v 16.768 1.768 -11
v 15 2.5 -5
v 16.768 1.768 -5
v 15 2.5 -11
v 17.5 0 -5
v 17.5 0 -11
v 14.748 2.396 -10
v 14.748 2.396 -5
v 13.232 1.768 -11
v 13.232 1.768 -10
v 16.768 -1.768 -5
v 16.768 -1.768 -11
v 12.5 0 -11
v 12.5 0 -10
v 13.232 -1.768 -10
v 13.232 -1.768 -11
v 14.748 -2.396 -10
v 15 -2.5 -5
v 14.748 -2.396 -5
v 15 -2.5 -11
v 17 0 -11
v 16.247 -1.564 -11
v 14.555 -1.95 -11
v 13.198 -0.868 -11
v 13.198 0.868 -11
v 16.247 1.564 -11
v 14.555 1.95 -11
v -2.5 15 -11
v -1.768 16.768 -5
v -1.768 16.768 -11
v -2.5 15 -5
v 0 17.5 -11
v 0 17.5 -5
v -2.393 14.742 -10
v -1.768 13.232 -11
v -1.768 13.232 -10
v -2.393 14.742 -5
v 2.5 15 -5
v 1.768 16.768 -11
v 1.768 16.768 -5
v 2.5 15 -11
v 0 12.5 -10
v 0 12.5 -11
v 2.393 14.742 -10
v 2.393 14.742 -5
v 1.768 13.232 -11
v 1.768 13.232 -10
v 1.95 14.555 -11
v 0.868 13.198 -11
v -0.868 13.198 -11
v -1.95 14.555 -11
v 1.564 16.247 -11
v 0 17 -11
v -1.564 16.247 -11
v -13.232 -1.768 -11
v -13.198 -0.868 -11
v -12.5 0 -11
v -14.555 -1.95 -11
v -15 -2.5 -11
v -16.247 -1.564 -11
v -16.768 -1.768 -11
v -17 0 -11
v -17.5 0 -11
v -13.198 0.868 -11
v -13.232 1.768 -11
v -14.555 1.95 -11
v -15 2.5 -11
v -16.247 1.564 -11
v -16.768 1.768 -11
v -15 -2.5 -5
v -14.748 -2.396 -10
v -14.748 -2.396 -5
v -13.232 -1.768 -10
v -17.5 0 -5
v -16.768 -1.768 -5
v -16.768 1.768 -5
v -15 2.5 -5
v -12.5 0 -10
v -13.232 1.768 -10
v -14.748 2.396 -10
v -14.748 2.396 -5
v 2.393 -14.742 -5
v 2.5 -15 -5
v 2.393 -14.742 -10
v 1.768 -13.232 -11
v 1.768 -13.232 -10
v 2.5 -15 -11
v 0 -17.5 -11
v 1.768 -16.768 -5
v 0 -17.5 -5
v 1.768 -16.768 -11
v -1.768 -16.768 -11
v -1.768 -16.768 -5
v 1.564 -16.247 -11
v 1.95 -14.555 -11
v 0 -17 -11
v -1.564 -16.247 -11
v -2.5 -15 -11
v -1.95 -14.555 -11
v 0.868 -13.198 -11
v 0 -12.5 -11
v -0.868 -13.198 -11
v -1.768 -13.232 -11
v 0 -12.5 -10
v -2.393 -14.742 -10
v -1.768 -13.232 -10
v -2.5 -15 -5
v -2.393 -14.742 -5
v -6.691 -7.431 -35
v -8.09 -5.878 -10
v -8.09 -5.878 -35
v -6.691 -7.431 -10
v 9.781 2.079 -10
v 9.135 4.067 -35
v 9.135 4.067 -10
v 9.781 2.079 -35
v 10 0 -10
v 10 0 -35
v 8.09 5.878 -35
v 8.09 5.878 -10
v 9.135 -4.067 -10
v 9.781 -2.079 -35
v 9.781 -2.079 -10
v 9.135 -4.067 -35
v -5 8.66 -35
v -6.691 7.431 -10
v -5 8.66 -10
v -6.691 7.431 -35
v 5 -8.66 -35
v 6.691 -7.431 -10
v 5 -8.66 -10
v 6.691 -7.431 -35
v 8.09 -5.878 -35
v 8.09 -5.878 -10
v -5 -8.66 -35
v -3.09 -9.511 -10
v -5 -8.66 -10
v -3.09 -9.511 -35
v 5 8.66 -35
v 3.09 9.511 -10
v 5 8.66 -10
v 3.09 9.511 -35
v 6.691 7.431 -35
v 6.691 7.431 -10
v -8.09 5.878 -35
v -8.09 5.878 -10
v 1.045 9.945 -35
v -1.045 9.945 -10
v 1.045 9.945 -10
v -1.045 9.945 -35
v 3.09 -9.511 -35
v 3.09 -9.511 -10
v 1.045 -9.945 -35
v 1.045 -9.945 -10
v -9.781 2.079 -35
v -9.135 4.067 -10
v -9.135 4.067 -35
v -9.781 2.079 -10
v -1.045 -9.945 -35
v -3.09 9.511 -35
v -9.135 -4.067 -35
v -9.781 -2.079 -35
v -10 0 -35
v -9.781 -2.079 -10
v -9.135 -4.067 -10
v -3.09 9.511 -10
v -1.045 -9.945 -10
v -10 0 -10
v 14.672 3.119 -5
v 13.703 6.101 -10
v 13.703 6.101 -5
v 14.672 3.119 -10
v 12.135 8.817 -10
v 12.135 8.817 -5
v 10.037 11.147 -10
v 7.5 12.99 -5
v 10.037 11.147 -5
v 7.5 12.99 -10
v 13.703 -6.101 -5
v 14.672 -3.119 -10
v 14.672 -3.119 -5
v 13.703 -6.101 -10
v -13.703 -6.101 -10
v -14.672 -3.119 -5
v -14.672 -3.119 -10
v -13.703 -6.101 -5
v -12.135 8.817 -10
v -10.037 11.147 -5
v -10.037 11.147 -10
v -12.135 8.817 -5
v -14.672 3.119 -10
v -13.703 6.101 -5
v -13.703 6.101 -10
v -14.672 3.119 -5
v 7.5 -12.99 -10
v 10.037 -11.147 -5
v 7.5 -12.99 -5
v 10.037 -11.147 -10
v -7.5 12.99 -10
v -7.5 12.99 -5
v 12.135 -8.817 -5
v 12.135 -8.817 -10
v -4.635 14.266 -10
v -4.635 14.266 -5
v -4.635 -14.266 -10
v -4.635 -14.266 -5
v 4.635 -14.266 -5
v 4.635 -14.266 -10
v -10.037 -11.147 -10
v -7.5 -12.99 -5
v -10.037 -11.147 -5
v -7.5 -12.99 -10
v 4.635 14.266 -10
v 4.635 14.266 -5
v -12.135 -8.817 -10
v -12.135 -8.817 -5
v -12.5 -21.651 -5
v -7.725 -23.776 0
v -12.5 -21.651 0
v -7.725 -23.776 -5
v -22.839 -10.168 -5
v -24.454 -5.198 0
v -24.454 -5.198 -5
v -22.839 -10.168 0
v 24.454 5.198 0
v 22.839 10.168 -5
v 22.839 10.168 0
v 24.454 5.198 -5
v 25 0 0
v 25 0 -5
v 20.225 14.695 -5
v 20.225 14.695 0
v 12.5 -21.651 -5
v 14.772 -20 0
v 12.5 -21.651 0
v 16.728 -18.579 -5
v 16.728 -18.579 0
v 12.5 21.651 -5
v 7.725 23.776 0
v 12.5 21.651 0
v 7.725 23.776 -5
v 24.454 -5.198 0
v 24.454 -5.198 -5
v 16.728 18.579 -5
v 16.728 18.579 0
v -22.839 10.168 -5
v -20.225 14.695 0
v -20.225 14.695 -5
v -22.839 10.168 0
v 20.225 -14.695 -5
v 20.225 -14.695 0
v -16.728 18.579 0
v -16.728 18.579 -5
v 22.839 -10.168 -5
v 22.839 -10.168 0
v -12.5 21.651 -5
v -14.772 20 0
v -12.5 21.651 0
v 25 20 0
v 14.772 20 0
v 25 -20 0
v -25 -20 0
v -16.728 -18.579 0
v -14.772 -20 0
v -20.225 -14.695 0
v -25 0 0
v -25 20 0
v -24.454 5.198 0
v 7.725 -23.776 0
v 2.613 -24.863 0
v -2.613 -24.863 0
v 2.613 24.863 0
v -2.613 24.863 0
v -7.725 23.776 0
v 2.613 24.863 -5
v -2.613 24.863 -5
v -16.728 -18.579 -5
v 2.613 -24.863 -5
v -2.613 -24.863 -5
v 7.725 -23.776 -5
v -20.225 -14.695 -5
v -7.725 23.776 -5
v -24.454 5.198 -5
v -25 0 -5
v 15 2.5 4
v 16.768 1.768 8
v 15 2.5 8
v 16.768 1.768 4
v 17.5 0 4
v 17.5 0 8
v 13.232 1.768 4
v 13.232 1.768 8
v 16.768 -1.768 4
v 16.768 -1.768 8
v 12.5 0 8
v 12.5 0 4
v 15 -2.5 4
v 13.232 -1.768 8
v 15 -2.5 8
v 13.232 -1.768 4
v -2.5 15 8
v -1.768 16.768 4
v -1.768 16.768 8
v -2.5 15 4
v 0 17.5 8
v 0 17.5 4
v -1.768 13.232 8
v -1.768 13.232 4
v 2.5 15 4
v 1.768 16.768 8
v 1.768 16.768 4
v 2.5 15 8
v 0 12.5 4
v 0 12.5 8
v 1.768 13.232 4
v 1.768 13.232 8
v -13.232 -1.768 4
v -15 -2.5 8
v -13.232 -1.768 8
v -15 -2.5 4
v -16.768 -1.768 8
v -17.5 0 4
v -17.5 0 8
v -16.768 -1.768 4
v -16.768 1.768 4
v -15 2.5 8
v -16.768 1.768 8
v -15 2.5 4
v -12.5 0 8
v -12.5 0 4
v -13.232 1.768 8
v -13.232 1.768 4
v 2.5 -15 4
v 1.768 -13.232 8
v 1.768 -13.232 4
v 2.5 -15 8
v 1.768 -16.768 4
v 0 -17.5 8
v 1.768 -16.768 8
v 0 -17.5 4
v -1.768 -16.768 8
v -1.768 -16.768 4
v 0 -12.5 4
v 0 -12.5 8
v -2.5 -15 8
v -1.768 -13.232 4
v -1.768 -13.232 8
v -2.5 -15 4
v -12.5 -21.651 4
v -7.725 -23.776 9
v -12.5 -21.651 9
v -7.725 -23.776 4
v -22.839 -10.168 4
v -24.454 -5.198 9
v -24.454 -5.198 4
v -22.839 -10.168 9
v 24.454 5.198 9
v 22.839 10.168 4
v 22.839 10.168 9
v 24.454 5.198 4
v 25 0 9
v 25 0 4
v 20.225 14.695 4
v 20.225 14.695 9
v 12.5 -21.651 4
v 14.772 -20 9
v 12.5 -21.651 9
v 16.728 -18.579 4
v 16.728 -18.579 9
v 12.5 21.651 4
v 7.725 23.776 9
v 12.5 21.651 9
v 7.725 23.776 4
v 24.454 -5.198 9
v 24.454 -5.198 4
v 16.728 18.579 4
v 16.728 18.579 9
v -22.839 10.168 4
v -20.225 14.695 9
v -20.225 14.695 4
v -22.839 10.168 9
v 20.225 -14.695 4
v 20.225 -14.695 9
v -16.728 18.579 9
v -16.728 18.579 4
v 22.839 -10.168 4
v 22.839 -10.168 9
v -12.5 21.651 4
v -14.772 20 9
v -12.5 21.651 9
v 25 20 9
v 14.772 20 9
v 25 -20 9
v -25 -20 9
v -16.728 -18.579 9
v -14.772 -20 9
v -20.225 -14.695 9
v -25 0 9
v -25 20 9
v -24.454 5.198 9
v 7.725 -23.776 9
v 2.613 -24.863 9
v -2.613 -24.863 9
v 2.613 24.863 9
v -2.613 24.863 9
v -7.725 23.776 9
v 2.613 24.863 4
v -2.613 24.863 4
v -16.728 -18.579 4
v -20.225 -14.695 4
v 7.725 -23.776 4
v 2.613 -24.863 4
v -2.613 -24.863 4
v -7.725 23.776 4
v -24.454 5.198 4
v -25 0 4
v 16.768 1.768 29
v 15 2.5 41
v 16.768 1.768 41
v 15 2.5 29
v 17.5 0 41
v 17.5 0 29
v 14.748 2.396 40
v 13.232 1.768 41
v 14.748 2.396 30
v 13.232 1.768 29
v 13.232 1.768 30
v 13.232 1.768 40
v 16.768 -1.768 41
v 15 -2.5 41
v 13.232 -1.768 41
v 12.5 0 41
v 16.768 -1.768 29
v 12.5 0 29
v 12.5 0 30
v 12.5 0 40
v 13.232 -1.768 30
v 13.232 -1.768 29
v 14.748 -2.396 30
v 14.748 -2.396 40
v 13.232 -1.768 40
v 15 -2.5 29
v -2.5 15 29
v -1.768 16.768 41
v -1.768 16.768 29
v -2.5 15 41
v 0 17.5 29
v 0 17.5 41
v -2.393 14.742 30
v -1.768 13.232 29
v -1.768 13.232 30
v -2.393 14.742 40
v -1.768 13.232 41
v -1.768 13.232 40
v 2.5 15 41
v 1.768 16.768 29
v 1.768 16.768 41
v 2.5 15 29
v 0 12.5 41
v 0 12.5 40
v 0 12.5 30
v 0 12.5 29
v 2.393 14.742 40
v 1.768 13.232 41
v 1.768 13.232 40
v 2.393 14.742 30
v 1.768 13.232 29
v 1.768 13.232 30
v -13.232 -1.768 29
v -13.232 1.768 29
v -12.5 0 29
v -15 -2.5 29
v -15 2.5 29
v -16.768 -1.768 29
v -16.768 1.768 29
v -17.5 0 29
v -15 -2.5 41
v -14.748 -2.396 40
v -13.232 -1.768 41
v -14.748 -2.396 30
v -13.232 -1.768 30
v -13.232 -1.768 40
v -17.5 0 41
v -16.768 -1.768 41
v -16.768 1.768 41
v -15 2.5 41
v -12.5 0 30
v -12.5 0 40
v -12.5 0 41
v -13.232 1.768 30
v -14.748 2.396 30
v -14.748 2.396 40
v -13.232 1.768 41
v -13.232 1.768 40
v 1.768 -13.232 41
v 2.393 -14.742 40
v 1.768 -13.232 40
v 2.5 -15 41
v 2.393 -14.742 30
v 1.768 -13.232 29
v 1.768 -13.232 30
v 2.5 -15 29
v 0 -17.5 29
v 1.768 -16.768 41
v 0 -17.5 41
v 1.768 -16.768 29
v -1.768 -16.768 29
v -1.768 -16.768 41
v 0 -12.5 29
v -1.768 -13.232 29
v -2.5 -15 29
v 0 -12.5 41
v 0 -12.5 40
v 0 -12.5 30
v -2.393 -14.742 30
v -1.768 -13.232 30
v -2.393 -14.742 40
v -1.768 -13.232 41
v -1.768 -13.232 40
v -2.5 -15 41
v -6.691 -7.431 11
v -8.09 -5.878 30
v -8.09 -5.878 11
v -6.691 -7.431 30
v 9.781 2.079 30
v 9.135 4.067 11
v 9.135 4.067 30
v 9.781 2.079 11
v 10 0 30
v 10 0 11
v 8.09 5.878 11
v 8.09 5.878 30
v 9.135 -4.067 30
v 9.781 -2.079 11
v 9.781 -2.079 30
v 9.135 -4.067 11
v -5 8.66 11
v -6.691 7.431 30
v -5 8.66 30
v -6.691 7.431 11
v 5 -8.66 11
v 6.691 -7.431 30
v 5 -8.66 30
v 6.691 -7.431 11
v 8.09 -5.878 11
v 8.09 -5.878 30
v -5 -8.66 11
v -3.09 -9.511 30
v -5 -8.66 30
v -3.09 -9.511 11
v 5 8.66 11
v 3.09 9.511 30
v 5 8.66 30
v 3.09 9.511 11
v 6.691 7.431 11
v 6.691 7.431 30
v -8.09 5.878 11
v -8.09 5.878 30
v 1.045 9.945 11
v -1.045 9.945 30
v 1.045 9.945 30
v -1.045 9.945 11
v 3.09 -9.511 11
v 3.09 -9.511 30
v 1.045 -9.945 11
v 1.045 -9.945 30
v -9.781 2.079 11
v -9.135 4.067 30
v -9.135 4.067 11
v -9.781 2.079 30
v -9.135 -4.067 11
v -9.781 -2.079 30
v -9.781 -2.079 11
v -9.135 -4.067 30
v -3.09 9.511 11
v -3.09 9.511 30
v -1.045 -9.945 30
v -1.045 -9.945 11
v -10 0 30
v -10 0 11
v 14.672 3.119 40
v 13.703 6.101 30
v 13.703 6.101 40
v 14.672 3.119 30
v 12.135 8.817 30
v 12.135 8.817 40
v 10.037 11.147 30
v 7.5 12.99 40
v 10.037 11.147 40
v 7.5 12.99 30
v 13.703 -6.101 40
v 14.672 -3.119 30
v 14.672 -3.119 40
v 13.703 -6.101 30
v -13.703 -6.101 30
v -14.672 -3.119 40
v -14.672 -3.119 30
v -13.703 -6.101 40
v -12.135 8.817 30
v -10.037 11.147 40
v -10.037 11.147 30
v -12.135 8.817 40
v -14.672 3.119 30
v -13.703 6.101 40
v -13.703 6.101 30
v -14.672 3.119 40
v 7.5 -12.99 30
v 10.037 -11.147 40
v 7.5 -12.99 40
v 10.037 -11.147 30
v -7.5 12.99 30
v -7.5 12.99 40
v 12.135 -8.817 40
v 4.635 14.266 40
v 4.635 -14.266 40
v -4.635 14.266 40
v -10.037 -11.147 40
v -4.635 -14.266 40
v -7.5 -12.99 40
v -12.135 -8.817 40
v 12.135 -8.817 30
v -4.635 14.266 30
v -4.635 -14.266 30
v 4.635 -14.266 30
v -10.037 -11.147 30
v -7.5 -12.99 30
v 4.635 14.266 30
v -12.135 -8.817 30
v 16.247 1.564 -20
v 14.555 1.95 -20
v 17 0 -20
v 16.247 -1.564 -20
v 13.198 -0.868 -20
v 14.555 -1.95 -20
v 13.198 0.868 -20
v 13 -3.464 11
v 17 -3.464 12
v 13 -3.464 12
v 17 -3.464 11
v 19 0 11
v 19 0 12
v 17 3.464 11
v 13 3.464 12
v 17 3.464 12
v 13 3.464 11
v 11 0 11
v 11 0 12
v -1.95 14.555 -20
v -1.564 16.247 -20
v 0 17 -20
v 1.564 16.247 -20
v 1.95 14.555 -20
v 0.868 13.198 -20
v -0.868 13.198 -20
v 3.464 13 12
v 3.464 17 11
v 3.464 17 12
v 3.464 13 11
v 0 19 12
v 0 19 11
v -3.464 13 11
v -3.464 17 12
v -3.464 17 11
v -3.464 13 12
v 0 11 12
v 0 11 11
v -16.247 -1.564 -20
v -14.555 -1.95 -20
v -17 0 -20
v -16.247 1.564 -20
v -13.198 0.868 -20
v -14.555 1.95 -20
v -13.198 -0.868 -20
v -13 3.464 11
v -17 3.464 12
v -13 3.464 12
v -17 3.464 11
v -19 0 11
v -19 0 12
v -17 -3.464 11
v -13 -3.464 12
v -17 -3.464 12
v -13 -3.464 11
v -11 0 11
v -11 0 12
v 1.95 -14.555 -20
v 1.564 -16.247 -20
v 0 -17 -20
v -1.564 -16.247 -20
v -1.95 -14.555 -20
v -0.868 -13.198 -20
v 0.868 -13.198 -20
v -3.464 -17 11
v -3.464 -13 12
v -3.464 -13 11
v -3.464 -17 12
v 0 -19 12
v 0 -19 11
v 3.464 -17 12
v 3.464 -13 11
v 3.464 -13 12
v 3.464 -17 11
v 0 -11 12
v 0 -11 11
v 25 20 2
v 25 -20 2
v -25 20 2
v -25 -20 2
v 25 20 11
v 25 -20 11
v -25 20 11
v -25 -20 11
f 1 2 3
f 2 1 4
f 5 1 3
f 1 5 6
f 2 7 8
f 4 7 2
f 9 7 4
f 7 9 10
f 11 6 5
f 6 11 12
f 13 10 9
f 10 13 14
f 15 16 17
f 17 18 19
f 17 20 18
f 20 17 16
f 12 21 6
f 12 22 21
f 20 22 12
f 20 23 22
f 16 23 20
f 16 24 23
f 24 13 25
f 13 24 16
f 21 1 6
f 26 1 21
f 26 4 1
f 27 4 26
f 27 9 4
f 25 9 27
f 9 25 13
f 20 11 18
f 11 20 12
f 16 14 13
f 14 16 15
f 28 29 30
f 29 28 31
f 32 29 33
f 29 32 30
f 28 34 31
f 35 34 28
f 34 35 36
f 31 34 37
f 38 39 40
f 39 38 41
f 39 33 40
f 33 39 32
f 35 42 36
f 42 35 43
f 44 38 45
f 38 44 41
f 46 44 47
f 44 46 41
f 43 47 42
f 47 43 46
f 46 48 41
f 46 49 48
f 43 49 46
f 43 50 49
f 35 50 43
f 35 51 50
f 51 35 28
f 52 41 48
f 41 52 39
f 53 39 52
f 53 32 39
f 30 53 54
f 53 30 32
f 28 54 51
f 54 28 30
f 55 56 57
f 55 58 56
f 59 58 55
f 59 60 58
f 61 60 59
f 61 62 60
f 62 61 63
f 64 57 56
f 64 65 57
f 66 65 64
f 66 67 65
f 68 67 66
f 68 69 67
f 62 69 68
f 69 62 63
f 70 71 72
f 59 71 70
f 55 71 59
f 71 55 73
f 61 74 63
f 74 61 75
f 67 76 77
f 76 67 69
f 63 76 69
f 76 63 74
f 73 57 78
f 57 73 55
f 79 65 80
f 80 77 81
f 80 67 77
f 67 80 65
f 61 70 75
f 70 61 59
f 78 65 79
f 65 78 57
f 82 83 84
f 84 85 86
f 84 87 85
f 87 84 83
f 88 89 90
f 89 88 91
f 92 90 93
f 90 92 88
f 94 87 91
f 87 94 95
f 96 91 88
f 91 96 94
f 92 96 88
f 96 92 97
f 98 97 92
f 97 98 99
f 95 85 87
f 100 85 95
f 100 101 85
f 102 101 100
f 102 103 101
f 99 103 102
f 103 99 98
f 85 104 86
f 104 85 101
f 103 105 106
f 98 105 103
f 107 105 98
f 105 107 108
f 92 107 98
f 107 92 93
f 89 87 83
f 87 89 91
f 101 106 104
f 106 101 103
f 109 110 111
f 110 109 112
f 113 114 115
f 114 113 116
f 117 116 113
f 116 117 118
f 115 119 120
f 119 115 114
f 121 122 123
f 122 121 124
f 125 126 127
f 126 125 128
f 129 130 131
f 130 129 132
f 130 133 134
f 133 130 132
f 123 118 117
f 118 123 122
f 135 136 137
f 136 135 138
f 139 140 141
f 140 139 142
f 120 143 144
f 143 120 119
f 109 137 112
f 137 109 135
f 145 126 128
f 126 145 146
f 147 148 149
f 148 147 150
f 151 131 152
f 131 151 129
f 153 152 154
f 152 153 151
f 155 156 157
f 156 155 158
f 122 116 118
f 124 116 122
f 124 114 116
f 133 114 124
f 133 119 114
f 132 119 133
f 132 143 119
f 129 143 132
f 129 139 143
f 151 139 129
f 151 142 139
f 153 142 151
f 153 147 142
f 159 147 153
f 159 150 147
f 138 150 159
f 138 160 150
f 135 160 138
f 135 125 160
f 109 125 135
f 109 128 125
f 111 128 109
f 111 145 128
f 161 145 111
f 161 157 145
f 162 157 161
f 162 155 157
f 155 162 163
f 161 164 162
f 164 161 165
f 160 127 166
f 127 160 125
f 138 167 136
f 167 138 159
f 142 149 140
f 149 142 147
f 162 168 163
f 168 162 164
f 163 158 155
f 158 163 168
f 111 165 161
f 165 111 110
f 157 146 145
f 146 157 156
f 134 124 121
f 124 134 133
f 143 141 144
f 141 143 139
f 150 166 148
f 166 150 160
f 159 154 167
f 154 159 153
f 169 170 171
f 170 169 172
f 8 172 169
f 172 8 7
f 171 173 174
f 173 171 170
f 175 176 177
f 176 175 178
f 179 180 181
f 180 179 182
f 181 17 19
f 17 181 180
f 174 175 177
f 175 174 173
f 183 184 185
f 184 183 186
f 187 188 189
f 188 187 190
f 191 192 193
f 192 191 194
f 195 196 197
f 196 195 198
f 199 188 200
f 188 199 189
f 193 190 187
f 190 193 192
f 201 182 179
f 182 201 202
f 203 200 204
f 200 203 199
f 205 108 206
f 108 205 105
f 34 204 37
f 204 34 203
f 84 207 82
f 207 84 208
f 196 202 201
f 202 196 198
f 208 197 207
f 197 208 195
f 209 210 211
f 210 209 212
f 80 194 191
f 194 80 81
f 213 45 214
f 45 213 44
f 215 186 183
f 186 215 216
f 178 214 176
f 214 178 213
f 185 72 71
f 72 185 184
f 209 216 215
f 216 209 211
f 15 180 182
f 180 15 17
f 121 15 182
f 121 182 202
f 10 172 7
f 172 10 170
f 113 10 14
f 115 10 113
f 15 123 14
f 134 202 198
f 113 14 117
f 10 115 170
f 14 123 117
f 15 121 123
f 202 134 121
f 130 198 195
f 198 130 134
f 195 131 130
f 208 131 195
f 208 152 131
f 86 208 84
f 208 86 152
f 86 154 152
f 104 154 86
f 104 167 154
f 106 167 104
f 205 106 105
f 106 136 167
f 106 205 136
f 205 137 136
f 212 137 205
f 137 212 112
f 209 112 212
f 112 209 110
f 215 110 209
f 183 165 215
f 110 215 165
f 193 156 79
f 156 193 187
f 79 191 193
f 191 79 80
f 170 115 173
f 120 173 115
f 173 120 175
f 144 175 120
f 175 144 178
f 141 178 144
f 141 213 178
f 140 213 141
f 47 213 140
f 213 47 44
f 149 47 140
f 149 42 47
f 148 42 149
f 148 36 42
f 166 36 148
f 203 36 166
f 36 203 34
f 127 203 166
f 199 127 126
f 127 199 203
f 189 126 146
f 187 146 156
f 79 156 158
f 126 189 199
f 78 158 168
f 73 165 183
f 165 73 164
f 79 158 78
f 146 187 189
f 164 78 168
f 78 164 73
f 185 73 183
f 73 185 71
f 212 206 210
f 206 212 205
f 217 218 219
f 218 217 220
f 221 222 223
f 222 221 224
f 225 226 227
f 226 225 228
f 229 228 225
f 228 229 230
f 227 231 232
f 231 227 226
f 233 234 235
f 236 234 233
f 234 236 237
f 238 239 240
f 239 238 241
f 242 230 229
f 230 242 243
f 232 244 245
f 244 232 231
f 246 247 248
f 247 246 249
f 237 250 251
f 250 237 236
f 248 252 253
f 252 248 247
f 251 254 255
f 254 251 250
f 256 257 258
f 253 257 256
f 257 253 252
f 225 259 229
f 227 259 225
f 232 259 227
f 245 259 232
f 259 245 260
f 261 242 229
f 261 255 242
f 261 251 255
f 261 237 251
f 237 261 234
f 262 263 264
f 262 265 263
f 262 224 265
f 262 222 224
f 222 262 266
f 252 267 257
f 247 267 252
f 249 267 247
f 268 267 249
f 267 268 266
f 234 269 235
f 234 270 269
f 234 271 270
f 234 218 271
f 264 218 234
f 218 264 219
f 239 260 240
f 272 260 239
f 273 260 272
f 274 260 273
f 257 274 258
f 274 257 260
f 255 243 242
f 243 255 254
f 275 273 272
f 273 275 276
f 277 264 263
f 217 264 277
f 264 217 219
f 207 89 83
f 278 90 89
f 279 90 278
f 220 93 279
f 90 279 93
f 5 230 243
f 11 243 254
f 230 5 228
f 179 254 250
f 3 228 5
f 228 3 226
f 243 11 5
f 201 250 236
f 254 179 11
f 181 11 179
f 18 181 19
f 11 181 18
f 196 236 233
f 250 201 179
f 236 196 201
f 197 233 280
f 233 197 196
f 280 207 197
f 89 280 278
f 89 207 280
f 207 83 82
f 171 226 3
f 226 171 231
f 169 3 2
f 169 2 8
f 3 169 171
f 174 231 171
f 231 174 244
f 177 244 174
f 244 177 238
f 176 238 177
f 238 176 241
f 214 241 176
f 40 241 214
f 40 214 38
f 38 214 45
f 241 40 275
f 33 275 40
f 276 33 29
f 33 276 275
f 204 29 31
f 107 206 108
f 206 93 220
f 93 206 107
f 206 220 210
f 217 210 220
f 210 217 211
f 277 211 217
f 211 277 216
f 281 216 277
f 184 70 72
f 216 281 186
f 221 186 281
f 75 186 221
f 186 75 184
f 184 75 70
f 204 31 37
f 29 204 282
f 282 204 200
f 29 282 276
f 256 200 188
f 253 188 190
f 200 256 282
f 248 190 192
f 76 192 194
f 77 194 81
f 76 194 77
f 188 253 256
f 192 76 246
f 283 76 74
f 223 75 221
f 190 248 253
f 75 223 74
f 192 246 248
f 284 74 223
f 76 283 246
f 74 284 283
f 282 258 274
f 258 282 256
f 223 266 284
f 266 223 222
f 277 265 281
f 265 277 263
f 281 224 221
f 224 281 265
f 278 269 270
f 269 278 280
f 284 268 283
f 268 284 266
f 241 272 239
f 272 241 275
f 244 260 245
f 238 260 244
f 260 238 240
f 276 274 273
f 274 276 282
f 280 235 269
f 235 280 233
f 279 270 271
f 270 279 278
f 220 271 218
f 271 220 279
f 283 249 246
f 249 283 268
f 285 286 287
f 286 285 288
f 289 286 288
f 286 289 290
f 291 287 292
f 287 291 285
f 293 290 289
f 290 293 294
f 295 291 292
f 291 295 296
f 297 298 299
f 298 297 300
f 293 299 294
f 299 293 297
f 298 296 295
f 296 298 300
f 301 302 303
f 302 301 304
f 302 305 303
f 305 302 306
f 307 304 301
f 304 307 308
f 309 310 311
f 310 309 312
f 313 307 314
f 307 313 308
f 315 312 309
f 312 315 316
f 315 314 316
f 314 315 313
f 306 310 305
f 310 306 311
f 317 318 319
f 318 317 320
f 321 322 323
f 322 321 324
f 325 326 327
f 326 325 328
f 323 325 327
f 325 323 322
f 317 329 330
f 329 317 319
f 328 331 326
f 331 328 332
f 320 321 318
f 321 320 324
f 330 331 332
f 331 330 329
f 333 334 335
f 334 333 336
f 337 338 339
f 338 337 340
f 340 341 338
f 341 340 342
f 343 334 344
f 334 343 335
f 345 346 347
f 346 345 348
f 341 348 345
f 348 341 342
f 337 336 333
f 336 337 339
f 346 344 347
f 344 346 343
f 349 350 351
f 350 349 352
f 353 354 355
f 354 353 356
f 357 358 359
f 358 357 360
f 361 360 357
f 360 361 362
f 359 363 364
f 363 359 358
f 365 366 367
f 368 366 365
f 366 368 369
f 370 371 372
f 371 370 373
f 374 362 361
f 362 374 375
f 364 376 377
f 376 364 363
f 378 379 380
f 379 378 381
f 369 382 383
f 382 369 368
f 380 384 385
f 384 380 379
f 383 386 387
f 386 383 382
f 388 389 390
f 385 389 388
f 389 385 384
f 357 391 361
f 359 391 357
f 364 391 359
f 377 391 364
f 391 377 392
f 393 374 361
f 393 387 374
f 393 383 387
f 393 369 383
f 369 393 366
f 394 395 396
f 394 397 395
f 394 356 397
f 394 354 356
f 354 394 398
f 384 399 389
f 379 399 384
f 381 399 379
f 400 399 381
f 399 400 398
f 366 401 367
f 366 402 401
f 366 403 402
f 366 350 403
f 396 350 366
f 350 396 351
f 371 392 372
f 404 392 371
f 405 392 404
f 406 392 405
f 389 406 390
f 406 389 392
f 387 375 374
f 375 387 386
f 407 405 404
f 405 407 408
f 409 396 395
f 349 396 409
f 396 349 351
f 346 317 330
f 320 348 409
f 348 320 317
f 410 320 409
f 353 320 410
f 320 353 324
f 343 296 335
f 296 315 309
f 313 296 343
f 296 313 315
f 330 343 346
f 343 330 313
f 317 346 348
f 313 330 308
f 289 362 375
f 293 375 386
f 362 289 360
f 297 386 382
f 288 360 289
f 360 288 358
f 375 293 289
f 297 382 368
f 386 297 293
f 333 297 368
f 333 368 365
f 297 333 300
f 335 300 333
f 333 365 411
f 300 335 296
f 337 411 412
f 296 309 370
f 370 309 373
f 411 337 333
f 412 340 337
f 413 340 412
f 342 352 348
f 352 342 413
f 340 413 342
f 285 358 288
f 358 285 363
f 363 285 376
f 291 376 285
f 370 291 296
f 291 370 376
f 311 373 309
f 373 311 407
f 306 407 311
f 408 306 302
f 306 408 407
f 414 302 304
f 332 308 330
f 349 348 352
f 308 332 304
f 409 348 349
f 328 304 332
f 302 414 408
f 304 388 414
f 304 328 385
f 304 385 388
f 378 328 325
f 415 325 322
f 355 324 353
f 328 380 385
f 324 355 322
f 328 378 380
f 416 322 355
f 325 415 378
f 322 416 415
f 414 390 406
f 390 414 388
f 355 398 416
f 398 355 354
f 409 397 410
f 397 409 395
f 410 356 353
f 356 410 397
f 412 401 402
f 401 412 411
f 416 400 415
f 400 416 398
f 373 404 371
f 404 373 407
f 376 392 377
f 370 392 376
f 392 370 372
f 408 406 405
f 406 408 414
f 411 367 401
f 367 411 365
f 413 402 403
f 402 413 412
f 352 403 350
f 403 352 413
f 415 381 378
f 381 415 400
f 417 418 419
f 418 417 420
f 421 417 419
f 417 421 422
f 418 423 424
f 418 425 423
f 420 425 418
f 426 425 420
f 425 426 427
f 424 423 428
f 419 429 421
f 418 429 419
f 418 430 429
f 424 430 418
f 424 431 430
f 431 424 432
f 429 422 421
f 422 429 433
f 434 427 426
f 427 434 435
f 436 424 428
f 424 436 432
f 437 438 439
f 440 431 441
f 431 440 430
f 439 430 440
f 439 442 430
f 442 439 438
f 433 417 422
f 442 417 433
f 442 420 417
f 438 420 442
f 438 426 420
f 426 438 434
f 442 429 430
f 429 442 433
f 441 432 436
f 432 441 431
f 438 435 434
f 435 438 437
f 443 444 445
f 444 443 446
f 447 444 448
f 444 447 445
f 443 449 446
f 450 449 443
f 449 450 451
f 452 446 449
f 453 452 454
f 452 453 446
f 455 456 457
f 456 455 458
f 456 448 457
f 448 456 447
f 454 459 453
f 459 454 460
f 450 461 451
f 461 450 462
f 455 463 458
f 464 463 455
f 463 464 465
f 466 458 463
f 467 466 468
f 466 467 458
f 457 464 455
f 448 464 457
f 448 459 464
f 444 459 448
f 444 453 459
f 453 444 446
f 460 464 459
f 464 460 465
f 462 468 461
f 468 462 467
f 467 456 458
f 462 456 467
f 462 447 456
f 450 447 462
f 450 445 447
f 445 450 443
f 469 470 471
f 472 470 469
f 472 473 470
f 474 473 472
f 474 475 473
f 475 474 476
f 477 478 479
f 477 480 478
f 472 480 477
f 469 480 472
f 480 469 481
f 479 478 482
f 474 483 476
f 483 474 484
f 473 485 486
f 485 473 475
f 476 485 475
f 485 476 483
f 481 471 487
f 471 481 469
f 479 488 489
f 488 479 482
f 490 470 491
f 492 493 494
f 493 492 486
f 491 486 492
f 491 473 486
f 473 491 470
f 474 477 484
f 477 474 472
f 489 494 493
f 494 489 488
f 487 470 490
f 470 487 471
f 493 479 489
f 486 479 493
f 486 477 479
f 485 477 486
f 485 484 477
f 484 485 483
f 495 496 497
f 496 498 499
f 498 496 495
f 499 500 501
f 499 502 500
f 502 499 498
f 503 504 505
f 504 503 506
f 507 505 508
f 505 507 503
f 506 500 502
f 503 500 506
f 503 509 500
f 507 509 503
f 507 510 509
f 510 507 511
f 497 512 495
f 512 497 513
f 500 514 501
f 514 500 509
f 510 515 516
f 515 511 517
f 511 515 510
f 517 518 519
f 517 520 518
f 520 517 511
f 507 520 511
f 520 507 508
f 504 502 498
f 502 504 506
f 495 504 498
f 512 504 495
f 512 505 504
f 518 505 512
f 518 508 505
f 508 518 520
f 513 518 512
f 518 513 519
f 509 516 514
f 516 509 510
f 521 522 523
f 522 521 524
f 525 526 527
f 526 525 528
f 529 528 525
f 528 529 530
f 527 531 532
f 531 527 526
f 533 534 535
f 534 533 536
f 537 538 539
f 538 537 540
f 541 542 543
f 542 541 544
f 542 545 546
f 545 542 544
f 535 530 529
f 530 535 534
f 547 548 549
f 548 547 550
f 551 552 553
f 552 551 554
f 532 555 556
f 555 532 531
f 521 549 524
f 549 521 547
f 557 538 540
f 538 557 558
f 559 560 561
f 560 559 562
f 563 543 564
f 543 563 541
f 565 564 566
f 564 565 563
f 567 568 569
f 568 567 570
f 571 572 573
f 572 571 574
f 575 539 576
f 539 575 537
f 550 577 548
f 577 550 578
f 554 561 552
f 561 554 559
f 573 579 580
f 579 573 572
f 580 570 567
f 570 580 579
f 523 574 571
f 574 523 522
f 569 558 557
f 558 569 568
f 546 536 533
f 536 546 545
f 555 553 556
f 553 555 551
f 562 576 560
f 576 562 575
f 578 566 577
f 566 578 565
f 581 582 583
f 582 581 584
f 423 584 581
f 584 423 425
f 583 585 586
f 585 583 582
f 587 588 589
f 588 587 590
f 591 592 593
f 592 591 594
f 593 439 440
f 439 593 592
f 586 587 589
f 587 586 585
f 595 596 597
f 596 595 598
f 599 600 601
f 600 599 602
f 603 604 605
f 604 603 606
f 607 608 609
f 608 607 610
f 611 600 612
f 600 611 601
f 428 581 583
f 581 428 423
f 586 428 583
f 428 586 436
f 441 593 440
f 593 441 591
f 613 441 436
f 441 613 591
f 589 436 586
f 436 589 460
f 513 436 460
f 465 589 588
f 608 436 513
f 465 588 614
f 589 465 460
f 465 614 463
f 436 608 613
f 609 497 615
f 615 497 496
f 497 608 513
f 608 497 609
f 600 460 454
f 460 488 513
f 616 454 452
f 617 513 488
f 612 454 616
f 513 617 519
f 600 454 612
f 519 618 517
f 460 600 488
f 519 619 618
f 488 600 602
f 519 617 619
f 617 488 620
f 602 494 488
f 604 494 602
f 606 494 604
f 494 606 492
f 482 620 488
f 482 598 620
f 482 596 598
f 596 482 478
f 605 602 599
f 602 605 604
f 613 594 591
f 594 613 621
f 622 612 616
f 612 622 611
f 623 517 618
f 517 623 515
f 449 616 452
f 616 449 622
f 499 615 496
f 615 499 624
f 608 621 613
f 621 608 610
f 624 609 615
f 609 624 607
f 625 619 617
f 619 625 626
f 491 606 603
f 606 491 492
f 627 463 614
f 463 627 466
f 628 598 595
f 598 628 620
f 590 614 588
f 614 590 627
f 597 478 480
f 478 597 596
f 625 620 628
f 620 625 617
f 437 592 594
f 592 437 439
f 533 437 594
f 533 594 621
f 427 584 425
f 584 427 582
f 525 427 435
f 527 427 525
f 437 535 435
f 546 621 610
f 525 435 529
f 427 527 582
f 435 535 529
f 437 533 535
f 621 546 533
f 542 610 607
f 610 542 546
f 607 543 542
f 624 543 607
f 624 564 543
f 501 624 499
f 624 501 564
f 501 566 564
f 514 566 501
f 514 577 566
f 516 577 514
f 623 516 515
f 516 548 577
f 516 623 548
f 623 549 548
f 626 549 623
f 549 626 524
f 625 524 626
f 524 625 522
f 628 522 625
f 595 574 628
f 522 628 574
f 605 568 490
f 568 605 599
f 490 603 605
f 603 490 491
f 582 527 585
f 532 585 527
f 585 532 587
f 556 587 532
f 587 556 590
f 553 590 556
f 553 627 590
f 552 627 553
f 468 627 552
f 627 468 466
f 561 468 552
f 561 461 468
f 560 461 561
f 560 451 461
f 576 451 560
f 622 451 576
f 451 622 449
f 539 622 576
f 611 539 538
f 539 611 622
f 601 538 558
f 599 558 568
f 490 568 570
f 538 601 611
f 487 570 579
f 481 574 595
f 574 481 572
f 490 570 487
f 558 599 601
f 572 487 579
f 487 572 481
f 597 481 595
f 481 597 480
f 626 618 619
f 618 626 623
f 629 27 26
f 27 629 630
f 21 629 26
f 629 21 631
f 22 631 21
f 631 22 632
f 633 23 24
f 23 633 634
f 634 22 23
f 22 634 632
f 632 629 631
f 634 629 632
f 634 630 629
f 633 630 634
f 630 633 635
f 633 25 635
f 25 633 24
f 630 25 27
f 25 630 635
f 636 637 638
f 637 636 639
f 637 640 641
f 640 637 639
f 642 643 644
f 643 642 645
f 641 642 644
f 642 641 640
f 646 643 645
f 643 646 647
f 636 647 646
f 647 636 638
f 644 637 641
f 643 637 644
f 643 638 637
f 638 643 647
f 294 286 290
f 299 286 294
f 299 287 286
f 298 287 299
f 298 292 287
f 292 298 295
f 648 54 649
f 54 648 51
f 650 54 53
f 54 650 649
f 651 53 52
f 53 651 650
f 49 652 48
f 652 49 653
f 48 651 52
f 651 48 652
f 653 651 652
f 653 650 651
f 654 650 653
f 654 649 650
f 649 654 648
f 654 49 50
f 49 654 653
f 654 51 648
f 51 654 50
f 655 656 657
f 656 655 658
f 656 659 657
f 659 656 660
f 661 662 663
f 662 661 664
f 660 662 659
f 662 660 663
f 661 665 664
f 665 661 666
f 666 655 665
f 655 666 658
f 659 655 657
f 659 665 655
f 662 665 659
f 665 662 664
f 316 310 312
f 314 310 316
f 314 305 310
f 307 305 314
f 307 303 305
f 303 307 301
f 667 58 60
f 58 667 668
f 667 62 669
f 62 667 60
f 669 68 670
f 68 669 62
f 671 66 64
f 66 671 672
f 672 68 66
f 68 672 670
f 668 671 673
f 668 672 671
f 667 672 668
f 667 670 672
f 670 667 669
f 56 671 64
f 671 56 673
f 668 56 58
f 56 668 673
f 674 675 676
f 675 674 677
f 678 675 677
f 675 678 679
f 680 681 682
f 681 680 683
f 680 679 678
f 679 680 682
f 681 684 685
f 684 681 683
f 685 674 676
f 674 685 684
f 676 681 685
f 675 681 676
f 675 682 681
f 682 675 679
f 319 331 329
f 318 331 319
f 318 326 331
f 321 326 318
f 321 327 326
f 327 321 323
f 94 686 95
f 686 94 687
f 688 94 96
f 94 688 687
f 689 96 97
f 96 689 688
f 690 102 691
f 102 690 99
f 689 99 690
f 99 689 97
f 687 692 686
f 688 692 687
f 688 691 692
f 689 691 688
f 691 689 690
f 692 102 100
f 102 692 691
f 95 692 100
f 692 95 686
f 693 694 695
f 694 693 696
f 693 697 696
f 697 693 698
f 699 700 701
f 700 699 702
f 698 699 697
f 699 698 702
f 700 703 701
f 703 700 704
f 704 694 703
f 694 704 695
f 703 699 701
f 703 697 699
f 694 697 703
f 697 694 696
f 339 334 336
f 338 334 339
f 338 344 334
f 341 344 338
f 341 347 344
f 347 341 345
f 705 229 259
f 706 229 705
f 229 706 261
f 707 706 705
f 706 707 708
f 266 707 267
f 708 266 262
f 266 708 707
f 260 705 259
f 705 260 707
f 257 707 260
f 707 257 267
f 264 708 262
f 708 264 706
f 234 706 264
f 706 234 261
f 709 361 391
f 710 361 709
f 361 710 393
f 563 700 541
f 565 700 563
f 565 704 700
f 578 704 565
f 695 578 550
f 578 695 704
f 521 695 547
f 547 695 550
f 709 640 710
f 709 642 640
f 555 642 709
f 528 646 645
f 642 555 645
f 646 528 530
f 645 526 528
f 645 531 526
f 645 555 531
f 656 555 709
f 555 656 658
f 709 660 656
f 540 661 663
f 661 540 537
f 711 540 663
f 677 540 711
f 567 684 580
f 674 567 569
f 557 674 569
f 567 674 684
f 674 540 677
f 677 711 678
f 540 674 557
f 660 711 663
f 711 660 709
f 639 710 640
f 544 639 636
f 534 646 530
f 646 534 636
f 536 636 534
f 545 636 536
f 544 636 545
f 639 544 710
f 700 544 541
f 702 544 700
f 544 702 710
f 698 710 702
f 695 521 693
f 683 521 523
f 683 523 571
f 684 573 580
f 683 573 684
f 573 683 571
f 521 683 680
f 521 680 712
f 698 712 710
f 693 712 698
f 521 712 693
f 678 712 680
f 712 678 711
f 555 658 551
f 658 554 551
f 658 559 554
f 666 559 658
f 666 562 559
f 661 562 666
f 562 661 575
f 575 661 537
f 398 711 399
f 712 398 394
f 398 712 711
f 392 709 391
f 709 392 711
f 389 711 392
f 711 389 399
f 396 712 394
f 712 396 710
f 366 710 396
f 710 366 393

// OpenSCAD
// Parameters
shaft_diameter = 20;
shaft_length = 30; // Shortened shaft length
shaft_larger_diameter = 30; // Larger diameter section for mounting
shaft_larger_length = 10; // Length of larger diameter section
flange_diameter = 50; // Circular flange diameter
flange_thickness = 5;
bolt_hole_diameter = 5;
bolt_diameter = 4;
bolt_length = 20;
nut_diameter = 8;
nut_thickness = 4;
flexible_element_thickness = 2;
flexible_element_width = 40;
flexible_element_length = 50;
bolt_spacing = 30;

// Module for shaft
module shaft() {
    union() {
        // Main shaft
        cylinder(h = shaft_length, d = shaft_diameter, center = true);
        // Larger diameter section
        translate([0, 0, shaft_length / 2])
            cylinder(h = shaft_larger_length, d = shaft_larger_diameter, center = true);
        // Bolt holes in larger diameter section
        for (i = [0:3]) {
            rotate([0, 0, i * 90])
                translate([bolt_spacing / 2, 0, shaft_length / 2])
                cylinder(h = shaft_larger_length + 2, d = bolt_hole_diameter, center = true);
        }
    }
}

// Module for flange plate
module flange_plate() {
    difference() {
        cylinder(h = flange_thickness, d = flange_diameter, center = true);
        for (i = [0:3]) {
            rotate([0, 0, i * 90])
                translate([bolt_spacing / 2, 0, 0])
                cylinder(h = flange_thickness + 2, d = bolt_hole_diameter, center = true);
        }
    }
}

// Module for flexible element
module flexible_element() {
    translate([0, 0, -flexible_element_thickness / 2])
        cube([flexible_element_length, flexible_element_width, flexible_element_thickness], center = true);
}

// Module for bolt
module bolt() {
    cylinder(h = bolt_length, d = bolt_diameter, center = true);
}

// Module for nut
module nut() {
    cylinder(h = nut_thickness, d = nut_diameter, $fn = 6, center = true);
}

// Assembly
module flexible_coupling() {
    // Input shaft
    translate([0, 0, -shaft_length / 2 - flange_thickness])
        shaft();

    // First flange plate
    translate([0, 0, -flange_thickness / 2])
        flange_plate();

    // First flexible element
    translate([0, 0, flexible_element_thickness])
        flexible_element();

    // Second flange plate
    translate([0, 0, flange_thickness / 2 + flexible_element_thickness * 2])
        flange_plate();

    // Second flexible element
    translate([0, 0, flange_thickness + flexible_element_thickness * 3])
        flexible_element();

    // Output shaft
    translate([0, 0, shaft_length / 2 + flange_thickness])
        shaft();

    // Bolts and nuts
    for (i = [0:3]) {
        rotate([0, 0, i * 90]) {
            translate([bolt_spacing / 2, 0, 0]) {
                translate([0, 0, -bolt_length / 2])
                    bolt();
                translate([0, 0, bolt_length / 2])
                    nut();
            }
        }
    }
}

// Render the model
flexible_coupling();
